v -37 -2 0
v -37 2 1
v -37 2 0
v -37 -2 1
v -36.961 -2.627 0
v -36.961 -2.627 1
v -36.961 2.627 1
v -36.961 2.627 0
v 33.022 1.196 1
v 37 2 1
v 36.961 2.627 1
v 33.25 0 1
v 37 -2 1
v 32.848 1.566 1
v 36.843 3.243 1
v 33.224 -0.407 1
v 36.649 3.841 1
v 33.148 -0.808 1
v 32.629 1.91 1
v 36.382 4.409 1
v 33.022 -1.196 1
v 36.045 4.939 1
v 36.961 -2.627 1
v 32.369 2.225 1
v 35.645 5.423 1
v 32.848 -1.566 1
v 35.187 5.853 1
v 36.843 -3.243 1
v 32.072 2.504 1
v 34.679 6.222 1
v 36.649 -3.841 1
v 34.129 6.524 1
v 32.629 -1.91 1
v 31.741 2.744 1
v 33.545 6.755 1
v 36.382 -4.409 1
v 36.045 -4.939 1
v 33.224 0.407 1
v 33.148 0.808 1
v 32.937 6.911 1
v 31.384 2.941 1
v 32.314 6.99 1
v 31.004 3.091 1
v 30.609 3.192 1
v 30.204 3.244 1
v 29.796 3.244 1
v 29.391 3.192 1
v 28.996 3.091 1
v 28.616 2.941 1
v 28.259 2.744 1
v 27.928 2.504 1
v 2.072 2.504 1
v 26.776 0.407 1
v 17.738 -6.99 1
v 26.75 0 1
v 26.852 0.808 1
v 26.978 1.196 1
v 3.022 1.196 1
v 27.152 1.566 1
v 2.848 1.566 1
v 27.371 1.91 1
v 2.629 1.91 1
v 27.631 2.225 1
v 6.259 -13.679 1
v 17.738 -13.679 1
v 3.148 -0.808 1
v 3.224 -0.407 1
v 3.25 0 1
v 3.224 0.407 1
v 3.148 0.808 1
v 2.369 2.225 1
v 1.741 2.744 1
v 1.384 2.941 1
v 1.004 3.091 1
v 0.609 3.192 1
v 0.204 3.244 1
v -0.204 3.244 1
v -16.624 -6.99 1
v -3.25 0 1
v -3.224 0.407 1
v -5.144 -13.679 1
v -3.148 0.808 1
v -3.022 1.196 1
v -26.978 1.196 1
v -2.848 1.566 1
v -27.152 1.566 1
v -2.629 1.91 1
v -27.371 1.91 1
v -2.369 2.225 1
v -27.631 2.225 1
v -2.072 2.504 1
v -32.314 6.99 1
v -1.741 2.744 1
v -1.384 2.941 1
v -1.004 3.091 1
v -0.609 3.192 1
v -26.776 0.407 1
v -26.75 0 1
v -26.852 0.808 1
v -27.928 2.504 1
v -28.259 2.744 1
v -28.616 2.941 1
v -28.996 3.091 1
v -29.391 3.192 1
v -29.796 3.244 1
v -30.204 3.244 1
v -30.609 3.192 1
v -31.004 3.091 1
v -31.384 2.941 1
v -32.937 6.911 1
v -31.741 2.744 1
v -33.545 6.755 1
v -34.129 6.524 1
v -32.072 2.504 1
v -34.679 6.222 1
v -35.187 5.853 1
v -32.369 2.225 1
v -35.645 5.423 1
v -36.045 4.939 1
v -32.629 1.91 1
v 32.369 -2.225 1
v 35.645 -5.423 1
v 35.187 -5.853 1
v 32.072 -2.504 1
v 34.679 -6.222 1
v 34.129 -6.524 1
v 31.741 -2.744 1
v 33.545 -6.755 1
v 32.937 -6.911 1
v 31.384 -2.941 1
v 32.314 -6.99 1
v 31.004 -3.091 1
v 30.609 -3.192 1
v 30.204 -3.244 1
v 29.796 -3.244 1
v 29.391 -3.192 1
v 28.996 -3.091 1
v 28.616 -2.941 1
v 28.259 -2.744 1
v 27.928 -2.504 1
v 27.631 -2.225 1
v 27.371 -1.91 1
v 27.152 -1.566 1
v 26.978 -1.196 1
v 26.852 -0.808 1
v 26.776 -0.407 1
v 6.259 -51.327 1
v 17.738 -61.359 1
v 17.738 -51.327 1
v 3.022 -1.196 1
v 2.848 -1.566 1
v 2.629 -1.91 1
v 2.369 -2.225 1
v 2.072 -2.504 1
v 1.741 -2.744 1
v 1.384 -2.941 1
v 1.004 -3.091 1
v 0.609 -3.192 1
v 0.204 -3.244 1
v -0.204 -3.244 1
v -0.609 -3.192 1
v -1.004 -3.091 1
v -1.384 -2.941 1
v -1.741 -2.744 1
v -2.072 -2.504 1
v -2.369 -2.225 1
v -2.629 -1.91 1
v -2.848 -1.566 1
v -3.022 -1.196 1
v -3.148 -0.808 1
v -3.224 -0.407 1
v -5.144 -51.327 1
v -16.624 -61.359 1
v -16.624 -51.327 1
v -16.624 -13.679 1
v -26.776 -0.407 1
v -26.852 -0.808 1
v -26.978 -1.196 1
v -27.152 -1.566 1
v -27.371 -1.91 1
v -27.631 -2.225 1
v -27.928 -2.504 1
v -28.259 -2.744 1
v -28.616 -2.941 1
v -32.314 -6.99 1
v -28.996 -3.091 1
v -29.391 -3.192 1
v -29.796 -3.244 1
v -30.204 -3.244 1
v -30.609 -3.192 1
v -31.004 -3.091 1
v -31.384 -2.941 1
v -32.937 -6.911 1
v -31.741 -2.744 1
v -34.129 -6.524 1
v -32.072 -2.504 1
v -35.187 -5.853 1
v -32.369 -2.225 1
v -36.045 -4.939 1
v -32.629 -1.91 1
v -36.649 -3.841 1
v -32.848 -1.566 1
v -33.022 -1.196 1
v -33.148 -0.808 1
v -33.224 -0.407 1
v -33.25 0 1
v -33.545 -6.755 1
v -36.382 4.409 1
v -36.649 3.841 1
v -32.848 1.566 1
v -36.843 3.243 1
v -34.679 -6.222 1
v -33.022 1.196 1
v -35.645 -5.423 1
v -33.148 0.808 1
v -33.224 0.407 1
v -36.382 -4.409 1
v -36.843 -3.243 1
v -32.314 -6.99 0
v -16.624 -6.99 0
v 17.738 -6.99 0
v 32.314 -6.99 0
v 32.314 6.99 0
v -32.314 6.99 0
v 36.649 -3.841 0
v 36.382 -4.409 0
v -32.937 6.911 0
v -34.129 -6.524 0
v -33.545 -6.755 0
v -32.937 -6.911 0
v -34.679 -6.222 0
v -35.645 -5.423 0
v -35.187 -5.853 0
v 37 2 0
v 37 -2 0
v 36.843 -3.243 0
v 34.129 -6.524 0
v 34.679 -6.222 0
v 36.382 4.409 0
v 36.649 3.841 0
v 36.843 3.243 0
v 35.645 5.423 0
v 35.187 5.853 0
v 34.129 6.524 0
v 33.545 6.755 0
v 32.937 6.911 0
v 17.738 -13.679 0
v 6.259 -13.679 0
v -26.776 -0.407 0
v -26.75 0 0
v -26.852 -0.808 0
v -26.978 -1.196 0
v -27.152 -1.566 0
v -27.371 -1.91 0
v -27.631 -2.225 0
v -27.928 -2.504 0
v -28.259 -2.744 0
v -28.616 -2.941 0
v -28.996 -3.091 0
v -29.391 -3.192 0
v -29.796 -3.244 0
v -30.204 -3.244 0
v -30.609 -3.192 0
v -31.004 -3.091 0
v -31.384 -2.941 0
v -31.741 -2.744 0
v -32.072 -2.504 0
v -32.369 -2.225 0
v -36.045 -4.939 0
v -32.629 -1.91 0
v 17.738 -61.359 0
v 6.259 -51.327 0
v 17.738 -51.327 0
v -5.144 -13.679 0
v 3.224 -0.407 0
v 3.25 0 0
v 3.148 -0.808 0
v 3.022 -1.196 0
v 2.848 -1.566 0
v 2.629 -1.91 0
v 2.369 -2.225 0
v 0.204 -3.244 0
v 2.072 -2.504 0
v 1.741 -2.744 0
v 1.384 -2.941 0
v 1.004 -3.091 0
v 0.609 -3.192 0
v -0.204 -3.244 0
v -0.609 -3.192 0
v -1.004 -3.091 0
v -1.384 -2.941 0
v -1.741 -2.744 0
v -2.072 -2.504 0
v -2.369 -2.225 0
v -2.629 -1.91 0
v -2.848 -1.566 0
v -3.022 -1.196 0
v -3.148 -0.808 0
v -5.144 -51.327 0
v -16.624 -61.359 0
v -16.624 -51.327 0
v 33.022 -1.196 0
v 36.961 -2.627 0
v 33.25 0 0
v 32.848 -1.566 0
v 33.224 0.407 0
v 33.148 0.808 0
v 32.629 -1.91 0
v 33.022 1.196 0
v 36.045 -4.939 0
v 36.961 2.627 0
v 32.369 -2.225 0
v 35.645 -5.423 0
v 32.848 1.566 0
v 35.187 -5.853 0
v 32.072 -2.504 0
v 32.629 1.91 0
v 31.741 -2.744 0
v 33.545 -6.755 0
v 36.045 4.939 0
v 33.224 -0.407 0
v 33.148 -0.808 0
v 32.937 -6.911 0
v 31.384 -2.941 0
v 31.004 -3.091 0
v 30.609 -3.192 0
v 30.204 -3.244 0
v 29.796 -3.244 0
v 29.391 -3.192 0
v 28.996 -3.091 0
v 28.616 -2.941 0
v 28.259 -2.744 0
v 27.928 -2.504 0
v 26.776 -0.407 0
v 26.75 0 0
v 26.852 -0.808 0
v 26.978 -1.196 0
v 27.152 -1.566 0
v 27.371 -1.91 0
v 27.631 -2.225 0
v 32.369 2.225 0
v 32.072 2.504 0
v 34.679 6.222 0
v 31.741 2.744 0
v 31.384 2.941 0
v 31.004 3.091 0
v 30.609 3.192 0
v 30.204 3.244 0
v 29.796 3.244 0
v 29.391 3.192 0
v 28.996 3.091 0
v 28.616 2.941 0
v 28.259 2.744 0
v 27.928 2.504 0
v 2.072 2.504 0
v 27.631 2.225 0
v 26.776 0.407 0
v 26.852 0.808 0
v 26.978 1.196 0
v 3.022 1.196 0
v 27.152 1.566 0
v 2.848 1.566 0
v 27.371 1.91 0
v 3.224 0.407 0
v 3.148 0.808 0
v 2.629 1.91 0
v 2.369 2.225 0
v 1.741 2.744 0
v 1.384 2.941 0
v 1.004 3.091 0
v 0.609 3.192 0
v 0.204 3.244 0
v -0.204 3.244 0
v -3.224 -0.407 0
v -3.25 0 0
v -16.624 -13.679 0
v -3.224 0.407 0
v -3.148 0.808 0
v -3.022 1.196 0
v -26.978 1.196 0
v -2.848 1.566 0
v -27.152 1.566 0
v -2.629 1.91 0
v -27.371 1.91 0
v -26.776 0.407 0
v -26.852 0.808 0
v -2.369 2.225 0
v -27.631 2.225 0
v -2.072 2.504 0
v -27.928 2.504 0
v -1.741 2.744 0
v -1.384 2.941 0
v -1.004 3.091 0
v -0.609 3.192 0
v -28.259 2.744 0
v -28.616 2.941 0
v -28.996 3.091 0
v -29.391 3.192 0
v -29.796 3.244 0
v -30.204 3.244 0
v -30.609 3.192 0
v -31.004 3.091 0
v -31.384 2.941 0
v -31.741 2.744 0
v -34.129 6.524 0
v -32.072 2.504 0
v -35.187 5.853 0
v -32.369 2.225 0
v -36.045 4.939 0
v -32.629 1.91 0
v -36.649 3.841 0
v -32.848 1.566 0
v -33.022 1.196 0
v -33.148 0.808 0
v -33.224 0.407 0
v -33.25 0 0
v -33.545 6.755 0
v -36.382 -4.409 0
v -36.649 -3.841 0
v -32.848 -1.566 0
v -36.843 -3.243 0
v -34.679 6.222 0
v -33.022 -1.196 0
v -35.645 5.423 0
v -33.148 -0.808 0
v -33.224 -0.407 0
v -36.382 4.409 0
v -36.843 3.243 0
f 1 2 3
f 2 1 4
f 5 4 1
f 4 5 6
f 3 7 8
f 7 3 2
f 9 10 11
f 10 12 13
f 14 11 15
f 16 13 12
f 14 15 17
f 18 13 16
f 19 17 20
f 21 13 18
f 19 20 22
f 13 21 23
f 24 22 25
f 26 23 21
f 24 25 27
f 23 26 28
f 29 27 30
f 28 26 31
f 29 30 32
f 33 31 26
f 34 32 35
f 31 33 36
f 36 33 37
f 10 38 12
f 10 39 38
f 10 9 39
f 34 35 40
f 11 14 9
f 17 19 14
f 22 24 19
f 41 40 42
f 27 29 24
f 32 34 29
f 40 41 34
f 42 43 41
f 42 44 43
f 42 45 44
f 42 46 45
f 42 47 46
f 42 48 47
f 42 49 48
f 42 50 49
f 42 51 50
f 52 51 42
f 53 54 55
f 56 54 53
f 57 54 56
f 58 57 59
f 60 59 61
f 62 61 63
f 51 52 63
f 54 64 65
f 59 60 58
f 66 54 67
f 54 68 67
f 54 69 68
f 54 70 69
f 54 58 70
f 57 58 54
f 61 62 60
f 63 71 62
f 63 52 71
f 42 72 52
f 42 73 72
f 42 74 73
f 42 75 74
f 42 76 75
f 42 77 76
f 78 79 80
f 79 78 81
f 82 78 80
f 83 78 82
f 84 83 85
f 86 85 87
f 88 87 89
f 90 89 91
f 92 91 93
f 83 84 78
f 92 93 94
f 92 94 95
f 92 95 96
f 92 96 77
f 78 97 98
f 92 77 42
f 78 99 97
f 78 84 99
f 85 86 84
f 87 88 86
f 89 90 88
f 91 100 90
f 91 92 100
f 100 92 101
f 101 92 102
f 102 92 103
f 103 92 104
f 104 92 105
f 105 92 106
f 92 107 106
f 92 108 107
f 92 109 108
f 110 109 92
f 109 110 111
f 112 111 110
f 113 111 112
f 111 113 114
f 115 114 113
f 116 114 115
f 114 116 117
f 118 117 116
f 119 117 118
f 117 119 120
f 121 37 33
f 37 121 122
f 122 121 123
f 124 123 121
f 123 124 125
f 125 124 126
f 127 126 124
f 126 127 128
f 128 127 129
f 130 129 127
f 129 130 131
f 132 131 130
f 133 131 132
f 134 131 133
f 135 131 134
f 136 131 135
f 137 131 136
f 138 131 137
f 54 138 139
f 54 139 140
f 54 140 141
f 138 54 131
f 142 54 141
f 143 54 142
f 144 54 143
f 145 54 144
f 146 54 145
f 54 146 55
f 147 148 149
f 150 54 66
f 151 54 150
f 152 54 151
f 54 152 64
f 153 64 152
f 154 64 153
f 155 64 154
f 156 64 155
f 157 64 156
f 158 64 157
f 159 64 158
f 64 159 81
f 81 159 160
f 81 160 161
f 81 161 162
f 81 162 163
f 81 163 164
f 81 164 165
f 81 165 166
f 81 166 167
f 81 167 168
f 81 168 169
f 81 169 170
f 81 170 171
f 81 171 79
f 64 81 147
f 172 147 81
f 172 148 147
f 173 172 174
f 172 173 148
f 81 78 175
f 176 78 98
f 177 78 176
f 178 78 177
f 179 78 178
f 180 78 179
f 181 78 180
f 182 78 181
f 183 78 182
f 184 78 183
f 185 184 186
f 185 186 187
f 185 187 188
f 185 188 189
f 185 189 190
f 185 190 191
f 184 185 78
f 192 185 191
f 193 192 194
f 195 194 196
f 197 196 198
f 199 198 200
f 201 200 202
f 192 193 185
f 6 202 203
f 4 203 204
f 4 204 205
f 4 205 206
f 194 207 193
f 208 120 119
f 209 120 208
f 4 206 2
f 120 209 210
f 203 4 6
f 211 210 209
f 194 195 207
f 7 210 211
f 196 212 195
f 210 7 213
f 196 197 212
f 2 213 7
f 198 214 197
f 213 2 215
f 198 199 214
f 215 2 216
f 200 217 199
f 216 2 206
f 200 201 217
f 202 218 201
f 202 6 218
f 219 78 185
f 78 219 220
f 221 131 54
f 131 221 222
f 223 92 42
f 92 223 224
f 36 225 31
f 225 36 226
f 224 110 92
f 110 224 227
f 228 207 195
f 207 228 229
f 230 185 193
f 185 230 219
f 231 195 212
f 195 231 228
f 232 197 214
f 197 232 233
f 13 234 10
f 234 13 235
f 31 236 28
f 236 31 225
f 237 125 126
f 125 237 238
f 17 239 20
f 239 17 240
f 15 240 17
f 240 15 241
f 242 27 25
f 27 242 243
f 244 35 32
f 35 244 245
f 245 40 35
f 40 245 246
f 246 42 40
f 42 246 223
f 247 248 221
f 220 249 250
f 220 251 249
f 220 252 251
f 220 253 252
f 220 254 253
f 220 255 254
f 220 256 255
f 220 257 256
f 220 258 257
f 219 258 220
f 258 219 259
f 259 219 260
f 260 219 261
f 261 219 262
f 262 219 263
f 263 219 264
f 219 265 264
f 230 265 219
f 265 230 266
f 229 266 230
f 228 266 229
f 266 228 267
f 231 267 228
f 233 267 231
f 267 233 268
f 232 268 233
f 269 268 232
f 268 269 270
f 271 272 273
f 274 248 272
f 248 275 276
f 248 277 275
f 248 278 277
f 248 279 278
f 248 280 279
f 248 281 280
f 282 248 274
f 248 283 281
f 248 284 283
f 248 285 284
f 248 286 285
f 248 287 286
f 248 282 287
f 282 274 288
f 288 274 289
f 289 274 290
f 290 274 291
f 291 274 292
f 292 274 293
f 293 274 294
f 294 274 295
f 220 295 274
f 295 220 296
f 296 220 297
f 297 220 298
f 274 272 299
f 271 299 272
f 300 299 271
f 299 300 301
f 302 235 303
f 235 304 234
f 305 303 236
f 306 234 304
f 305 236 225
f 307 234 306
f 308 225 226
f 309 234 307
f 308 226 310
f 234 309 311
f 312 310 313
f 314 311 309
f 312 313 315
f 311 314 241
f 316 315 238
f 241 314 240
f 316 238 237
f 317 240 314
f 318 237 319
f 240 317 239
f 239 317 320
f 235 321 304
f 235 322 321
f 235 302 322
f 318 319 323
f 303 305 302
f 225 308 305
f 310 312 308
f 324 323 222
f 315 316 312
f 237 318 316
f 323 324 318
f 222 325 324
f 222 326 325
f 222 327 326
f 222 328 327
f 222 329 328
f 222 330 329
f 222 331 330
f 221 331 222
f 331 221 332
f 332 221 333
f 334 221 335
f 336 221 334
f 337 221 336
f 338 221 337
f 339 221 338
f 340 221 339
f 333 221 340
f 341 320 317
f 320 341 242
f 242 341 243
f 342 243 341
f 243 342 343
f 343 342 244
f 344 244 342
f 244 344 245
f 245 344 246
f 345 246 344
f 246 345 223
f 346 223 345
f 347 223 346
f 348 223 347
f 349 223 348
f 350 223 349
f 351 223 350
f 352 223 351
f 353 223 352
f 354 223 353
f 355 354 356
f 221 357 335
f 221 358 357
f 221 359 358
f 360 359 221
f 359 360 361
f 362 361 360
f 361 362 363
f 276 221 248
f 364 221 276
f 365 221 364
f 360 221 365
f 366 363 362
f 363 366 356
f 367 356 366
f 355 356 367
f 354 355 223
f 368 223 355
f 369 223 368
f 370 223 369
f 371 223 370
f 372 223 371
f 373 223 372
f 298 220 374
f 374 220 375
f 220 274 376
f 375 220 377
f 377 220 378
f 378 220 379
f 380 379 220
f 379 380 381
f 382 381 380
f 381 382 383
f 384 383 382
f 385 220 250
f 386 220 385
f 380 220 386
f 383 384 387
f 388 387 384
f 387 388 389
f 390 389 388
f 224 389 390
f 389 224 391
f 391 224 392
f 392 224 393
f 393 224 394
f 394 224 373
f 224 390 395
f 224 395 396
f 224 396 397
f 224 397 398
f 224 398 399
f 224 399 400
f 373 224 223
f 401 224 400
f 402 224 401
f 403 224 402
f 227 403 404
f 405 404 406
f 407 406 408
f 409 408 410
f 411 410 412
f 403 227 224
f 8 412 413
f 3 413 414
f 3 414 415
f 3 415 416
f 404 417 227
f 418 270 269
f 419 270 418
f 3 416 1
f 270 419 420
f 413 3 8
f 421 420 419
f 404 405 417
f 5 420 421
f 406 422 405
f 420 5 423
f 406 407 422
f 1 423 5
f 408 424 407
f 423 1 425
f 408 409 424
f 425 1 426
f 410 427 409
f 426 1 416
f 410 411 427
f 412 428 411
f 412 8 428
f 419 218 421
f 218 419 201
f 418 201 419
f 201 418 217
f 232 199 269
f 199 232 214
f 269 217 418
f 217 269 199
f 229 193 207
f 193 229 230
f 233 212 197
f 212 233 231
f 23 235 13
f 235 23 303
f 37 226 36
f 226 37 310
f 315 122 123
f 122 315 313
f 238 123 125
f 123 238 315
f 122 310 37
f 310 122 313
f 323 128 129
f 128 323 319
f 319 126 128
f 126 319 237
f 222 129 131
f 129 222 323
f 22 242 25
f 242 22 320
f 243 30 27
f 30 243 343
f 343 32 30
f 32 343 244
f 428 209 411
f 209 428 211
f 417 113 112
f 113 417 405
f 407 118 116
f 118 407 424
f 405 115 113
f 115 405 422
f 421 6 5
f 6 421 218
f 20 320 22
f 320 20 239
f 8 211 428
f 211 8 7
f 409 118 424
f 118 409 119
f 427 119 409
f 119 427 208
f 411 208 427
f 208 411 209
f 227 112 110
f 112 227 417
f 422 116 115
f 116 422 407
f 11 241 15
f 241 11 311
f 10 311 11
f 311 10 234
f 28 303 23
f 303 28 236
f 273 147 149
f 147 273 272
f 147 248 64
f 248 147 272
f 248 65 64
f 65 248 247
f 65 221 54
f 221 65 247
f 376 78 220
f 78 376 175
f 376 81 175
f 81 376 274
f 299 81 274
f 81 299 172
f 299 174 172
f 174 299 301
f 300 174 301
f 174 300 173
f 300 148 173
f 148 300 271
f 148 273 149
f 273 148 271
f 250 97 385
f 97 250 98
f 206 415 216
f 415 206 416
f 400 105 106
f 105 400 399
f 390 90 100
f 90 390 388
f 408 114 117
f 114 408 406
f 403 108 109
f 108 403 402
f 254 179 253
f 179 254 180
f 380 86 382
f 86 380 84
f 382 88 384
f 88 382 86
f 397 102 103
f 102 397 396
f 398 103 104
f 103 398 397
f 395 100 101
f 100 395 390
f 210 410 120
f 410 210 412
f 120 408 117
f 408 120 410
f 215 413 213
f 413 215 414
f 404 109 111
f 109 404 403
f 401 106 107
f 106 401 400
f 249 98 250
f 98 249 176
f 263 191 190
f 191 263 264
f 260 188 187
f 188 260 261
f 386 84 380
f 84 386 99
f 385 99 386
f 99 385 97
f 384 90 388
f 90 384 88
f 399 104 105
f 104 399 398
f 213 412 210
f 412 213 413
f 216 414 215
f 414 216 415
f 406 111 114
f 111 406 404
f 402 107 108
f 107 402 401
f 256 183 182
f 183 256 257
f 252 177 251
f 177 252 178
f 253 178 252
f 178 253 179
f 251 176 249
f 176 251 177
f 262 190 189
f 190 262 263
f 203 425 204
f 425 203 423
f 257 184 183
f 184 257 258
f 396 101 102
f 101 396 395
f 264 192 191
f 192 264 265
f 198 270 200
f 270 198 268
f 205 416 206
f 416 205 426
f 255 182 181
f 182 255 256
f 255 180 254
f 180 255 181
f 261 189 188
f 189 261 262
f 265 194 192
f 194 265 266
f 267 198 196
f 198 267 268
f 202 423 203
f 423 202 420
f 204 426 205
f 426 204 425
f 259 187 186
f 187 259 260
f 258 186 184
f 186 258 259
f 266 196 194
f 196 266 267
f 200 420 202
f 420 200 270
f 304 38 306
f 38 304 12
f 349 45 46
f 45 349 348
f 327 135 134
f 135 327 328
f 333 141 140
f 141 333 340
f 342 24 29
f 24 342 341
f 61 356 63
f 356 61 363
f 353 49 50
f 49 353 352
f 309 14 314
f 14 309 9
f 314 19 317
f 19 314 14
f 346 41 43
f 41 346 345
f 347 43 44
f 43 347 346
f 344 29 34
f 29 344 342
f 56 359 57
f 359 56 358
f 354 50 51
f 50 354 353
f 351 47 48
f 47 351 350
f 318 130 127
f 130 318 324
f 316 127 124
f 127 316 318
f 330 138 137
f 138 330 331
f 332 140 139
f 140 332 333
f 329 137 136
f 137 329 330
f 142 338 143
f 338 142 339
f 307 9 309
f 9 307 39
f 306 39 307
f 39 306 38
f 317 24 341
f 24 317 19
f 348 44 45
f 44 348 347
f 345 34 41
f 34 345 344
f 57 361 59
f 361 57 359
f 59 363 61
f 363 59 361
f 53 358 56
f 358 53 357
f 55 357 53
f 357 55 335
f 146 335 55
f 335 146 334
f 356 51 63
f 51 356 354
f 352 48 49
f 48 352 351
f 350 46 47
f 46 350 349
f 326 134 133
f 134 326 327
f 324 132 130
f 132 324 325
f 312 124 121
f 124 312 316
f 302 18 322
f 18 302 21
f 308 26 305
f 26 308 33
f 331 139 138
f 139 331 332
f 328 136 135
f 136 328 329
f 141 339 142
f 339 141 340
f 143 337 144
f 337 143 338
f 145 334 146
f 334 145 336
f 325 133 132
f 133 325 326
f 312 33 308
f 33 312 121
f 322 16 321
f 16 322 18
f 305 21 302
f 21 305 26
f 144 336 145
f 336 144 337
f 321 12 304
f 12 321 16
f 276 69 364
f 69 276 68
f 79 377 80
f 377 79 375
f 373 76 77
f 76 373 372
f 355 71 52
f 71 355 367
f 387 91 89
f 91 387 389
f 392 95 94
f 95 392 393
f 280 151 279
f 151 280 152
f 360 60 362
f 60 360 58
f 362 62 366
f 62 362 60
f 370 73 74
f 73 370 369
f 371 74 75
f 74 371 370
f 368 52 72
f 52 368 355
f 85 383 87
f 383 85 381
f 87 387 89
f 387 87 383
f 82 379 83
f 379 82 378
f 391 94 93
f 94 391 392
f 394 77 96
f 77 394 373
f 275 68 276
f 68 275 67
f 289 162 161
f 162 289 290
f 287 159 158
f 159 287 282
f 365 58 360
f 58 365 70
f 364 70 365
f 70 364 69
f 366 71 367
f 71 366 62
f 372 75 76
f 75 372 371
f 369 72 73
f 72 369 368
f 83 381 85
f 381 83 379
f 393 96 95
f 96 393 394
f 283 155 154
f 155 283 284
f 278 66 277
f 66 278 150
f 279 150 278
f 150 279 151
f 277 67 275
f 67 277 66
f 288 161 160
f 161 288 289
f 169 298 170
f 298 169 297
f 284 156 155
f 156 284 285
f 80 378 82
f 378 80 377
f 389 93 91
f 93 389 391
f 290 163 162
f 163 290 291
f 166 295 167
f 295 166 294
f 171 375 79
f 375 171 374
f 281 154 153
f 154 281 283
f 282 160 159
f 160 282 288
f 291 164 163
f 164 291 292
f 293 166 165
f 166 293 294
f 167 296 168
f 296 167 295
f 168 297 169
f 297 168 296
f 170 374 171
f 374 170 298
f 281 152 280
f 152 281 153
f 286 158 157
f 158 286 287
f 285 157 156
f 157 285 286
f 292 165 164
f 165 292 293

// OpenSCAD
$fn = 50;


difference() {
	union() {
		translate(v = [0, 0, 0]) {
			rotate(a = [0, 0, 0]) {
				hull() {
					translate(v = [-32.0000000000, 2.0000000000, 0]) {
						rotate(a = [0, 0, 0]) {
							translate(v = [0, 0, 0]) {
								rotate(a = [0, 0, 0]) {
									cylinder(h = 1, r = 5);
								}
							}
						}
					}
					translate(v = [32.0000000000, 2.0000000000, 0]) {
						rotate(a = [0, 0, 0]) {
							translate(v = [0, 0, 0]) {
								rotate(a = [0, 0, 0]) {
									cylinder(h = 1, r = 5);
								}
							}
						}
					}
					translate(v = [-32.0000000000, -2.0000000000, 0]) {
						rotate(a = [0, 0, 0]) {
							translate(v = [0, 0, 0]) {
								rotate(a = [0, 0, 0]) {
									cylinder(h = 1, r = 5);
								}
							}
						}
					}
					translate(v = [32.0000000000, -2.0000000000, 0]) {
						rotate(a = [0, 0, 0]) {
							translate(v = [0, 0, 0]) {
								rotate(a = [0, 0, 0]) {
									cylinder(h = 1, r = 5);
								}
							}
						}
					}
				}
			}
		}
		translate(v = [0, -5, 0]) {
			rotate(a = [0, 0, 0]) {
				linear_extrude(height = 1) {
					text(font = "DejaVu Sans Mono:style=Bold", halign = "center", size = 57.0000000000, text = "I", valign = "top");
				}
			}
		}
	}
	union() {
		translate(v = [-30.0000000000, 0.0000000000, -125.0000000000]) {
			rotate(a = [0, 0, 0]) {
				cylinder(h = 250, r = 3.2500000000);
			}
		}
		translate(v = [30.0000000000, 0.0000000000, -125.0000000000]) {
			rotate(a = [0, 0, 0]) {
				cylinder(h = 250, r = 3.2500000000);
			}
		}
		translate(v = [30.0000000000, 0.0000000000, -125.0000000000]) {
			rotate(a = [0, 0, 0]) {
				cylinder(h = 250, r = 3.2500000000);
			}
		}
		translate(v = [0, 0, -125.0000000000]) {
			rotate(a = [0, 0, 0]) {
				cylinder(h = 250, r = 3.2500000000);
			}
		}
	}
}
